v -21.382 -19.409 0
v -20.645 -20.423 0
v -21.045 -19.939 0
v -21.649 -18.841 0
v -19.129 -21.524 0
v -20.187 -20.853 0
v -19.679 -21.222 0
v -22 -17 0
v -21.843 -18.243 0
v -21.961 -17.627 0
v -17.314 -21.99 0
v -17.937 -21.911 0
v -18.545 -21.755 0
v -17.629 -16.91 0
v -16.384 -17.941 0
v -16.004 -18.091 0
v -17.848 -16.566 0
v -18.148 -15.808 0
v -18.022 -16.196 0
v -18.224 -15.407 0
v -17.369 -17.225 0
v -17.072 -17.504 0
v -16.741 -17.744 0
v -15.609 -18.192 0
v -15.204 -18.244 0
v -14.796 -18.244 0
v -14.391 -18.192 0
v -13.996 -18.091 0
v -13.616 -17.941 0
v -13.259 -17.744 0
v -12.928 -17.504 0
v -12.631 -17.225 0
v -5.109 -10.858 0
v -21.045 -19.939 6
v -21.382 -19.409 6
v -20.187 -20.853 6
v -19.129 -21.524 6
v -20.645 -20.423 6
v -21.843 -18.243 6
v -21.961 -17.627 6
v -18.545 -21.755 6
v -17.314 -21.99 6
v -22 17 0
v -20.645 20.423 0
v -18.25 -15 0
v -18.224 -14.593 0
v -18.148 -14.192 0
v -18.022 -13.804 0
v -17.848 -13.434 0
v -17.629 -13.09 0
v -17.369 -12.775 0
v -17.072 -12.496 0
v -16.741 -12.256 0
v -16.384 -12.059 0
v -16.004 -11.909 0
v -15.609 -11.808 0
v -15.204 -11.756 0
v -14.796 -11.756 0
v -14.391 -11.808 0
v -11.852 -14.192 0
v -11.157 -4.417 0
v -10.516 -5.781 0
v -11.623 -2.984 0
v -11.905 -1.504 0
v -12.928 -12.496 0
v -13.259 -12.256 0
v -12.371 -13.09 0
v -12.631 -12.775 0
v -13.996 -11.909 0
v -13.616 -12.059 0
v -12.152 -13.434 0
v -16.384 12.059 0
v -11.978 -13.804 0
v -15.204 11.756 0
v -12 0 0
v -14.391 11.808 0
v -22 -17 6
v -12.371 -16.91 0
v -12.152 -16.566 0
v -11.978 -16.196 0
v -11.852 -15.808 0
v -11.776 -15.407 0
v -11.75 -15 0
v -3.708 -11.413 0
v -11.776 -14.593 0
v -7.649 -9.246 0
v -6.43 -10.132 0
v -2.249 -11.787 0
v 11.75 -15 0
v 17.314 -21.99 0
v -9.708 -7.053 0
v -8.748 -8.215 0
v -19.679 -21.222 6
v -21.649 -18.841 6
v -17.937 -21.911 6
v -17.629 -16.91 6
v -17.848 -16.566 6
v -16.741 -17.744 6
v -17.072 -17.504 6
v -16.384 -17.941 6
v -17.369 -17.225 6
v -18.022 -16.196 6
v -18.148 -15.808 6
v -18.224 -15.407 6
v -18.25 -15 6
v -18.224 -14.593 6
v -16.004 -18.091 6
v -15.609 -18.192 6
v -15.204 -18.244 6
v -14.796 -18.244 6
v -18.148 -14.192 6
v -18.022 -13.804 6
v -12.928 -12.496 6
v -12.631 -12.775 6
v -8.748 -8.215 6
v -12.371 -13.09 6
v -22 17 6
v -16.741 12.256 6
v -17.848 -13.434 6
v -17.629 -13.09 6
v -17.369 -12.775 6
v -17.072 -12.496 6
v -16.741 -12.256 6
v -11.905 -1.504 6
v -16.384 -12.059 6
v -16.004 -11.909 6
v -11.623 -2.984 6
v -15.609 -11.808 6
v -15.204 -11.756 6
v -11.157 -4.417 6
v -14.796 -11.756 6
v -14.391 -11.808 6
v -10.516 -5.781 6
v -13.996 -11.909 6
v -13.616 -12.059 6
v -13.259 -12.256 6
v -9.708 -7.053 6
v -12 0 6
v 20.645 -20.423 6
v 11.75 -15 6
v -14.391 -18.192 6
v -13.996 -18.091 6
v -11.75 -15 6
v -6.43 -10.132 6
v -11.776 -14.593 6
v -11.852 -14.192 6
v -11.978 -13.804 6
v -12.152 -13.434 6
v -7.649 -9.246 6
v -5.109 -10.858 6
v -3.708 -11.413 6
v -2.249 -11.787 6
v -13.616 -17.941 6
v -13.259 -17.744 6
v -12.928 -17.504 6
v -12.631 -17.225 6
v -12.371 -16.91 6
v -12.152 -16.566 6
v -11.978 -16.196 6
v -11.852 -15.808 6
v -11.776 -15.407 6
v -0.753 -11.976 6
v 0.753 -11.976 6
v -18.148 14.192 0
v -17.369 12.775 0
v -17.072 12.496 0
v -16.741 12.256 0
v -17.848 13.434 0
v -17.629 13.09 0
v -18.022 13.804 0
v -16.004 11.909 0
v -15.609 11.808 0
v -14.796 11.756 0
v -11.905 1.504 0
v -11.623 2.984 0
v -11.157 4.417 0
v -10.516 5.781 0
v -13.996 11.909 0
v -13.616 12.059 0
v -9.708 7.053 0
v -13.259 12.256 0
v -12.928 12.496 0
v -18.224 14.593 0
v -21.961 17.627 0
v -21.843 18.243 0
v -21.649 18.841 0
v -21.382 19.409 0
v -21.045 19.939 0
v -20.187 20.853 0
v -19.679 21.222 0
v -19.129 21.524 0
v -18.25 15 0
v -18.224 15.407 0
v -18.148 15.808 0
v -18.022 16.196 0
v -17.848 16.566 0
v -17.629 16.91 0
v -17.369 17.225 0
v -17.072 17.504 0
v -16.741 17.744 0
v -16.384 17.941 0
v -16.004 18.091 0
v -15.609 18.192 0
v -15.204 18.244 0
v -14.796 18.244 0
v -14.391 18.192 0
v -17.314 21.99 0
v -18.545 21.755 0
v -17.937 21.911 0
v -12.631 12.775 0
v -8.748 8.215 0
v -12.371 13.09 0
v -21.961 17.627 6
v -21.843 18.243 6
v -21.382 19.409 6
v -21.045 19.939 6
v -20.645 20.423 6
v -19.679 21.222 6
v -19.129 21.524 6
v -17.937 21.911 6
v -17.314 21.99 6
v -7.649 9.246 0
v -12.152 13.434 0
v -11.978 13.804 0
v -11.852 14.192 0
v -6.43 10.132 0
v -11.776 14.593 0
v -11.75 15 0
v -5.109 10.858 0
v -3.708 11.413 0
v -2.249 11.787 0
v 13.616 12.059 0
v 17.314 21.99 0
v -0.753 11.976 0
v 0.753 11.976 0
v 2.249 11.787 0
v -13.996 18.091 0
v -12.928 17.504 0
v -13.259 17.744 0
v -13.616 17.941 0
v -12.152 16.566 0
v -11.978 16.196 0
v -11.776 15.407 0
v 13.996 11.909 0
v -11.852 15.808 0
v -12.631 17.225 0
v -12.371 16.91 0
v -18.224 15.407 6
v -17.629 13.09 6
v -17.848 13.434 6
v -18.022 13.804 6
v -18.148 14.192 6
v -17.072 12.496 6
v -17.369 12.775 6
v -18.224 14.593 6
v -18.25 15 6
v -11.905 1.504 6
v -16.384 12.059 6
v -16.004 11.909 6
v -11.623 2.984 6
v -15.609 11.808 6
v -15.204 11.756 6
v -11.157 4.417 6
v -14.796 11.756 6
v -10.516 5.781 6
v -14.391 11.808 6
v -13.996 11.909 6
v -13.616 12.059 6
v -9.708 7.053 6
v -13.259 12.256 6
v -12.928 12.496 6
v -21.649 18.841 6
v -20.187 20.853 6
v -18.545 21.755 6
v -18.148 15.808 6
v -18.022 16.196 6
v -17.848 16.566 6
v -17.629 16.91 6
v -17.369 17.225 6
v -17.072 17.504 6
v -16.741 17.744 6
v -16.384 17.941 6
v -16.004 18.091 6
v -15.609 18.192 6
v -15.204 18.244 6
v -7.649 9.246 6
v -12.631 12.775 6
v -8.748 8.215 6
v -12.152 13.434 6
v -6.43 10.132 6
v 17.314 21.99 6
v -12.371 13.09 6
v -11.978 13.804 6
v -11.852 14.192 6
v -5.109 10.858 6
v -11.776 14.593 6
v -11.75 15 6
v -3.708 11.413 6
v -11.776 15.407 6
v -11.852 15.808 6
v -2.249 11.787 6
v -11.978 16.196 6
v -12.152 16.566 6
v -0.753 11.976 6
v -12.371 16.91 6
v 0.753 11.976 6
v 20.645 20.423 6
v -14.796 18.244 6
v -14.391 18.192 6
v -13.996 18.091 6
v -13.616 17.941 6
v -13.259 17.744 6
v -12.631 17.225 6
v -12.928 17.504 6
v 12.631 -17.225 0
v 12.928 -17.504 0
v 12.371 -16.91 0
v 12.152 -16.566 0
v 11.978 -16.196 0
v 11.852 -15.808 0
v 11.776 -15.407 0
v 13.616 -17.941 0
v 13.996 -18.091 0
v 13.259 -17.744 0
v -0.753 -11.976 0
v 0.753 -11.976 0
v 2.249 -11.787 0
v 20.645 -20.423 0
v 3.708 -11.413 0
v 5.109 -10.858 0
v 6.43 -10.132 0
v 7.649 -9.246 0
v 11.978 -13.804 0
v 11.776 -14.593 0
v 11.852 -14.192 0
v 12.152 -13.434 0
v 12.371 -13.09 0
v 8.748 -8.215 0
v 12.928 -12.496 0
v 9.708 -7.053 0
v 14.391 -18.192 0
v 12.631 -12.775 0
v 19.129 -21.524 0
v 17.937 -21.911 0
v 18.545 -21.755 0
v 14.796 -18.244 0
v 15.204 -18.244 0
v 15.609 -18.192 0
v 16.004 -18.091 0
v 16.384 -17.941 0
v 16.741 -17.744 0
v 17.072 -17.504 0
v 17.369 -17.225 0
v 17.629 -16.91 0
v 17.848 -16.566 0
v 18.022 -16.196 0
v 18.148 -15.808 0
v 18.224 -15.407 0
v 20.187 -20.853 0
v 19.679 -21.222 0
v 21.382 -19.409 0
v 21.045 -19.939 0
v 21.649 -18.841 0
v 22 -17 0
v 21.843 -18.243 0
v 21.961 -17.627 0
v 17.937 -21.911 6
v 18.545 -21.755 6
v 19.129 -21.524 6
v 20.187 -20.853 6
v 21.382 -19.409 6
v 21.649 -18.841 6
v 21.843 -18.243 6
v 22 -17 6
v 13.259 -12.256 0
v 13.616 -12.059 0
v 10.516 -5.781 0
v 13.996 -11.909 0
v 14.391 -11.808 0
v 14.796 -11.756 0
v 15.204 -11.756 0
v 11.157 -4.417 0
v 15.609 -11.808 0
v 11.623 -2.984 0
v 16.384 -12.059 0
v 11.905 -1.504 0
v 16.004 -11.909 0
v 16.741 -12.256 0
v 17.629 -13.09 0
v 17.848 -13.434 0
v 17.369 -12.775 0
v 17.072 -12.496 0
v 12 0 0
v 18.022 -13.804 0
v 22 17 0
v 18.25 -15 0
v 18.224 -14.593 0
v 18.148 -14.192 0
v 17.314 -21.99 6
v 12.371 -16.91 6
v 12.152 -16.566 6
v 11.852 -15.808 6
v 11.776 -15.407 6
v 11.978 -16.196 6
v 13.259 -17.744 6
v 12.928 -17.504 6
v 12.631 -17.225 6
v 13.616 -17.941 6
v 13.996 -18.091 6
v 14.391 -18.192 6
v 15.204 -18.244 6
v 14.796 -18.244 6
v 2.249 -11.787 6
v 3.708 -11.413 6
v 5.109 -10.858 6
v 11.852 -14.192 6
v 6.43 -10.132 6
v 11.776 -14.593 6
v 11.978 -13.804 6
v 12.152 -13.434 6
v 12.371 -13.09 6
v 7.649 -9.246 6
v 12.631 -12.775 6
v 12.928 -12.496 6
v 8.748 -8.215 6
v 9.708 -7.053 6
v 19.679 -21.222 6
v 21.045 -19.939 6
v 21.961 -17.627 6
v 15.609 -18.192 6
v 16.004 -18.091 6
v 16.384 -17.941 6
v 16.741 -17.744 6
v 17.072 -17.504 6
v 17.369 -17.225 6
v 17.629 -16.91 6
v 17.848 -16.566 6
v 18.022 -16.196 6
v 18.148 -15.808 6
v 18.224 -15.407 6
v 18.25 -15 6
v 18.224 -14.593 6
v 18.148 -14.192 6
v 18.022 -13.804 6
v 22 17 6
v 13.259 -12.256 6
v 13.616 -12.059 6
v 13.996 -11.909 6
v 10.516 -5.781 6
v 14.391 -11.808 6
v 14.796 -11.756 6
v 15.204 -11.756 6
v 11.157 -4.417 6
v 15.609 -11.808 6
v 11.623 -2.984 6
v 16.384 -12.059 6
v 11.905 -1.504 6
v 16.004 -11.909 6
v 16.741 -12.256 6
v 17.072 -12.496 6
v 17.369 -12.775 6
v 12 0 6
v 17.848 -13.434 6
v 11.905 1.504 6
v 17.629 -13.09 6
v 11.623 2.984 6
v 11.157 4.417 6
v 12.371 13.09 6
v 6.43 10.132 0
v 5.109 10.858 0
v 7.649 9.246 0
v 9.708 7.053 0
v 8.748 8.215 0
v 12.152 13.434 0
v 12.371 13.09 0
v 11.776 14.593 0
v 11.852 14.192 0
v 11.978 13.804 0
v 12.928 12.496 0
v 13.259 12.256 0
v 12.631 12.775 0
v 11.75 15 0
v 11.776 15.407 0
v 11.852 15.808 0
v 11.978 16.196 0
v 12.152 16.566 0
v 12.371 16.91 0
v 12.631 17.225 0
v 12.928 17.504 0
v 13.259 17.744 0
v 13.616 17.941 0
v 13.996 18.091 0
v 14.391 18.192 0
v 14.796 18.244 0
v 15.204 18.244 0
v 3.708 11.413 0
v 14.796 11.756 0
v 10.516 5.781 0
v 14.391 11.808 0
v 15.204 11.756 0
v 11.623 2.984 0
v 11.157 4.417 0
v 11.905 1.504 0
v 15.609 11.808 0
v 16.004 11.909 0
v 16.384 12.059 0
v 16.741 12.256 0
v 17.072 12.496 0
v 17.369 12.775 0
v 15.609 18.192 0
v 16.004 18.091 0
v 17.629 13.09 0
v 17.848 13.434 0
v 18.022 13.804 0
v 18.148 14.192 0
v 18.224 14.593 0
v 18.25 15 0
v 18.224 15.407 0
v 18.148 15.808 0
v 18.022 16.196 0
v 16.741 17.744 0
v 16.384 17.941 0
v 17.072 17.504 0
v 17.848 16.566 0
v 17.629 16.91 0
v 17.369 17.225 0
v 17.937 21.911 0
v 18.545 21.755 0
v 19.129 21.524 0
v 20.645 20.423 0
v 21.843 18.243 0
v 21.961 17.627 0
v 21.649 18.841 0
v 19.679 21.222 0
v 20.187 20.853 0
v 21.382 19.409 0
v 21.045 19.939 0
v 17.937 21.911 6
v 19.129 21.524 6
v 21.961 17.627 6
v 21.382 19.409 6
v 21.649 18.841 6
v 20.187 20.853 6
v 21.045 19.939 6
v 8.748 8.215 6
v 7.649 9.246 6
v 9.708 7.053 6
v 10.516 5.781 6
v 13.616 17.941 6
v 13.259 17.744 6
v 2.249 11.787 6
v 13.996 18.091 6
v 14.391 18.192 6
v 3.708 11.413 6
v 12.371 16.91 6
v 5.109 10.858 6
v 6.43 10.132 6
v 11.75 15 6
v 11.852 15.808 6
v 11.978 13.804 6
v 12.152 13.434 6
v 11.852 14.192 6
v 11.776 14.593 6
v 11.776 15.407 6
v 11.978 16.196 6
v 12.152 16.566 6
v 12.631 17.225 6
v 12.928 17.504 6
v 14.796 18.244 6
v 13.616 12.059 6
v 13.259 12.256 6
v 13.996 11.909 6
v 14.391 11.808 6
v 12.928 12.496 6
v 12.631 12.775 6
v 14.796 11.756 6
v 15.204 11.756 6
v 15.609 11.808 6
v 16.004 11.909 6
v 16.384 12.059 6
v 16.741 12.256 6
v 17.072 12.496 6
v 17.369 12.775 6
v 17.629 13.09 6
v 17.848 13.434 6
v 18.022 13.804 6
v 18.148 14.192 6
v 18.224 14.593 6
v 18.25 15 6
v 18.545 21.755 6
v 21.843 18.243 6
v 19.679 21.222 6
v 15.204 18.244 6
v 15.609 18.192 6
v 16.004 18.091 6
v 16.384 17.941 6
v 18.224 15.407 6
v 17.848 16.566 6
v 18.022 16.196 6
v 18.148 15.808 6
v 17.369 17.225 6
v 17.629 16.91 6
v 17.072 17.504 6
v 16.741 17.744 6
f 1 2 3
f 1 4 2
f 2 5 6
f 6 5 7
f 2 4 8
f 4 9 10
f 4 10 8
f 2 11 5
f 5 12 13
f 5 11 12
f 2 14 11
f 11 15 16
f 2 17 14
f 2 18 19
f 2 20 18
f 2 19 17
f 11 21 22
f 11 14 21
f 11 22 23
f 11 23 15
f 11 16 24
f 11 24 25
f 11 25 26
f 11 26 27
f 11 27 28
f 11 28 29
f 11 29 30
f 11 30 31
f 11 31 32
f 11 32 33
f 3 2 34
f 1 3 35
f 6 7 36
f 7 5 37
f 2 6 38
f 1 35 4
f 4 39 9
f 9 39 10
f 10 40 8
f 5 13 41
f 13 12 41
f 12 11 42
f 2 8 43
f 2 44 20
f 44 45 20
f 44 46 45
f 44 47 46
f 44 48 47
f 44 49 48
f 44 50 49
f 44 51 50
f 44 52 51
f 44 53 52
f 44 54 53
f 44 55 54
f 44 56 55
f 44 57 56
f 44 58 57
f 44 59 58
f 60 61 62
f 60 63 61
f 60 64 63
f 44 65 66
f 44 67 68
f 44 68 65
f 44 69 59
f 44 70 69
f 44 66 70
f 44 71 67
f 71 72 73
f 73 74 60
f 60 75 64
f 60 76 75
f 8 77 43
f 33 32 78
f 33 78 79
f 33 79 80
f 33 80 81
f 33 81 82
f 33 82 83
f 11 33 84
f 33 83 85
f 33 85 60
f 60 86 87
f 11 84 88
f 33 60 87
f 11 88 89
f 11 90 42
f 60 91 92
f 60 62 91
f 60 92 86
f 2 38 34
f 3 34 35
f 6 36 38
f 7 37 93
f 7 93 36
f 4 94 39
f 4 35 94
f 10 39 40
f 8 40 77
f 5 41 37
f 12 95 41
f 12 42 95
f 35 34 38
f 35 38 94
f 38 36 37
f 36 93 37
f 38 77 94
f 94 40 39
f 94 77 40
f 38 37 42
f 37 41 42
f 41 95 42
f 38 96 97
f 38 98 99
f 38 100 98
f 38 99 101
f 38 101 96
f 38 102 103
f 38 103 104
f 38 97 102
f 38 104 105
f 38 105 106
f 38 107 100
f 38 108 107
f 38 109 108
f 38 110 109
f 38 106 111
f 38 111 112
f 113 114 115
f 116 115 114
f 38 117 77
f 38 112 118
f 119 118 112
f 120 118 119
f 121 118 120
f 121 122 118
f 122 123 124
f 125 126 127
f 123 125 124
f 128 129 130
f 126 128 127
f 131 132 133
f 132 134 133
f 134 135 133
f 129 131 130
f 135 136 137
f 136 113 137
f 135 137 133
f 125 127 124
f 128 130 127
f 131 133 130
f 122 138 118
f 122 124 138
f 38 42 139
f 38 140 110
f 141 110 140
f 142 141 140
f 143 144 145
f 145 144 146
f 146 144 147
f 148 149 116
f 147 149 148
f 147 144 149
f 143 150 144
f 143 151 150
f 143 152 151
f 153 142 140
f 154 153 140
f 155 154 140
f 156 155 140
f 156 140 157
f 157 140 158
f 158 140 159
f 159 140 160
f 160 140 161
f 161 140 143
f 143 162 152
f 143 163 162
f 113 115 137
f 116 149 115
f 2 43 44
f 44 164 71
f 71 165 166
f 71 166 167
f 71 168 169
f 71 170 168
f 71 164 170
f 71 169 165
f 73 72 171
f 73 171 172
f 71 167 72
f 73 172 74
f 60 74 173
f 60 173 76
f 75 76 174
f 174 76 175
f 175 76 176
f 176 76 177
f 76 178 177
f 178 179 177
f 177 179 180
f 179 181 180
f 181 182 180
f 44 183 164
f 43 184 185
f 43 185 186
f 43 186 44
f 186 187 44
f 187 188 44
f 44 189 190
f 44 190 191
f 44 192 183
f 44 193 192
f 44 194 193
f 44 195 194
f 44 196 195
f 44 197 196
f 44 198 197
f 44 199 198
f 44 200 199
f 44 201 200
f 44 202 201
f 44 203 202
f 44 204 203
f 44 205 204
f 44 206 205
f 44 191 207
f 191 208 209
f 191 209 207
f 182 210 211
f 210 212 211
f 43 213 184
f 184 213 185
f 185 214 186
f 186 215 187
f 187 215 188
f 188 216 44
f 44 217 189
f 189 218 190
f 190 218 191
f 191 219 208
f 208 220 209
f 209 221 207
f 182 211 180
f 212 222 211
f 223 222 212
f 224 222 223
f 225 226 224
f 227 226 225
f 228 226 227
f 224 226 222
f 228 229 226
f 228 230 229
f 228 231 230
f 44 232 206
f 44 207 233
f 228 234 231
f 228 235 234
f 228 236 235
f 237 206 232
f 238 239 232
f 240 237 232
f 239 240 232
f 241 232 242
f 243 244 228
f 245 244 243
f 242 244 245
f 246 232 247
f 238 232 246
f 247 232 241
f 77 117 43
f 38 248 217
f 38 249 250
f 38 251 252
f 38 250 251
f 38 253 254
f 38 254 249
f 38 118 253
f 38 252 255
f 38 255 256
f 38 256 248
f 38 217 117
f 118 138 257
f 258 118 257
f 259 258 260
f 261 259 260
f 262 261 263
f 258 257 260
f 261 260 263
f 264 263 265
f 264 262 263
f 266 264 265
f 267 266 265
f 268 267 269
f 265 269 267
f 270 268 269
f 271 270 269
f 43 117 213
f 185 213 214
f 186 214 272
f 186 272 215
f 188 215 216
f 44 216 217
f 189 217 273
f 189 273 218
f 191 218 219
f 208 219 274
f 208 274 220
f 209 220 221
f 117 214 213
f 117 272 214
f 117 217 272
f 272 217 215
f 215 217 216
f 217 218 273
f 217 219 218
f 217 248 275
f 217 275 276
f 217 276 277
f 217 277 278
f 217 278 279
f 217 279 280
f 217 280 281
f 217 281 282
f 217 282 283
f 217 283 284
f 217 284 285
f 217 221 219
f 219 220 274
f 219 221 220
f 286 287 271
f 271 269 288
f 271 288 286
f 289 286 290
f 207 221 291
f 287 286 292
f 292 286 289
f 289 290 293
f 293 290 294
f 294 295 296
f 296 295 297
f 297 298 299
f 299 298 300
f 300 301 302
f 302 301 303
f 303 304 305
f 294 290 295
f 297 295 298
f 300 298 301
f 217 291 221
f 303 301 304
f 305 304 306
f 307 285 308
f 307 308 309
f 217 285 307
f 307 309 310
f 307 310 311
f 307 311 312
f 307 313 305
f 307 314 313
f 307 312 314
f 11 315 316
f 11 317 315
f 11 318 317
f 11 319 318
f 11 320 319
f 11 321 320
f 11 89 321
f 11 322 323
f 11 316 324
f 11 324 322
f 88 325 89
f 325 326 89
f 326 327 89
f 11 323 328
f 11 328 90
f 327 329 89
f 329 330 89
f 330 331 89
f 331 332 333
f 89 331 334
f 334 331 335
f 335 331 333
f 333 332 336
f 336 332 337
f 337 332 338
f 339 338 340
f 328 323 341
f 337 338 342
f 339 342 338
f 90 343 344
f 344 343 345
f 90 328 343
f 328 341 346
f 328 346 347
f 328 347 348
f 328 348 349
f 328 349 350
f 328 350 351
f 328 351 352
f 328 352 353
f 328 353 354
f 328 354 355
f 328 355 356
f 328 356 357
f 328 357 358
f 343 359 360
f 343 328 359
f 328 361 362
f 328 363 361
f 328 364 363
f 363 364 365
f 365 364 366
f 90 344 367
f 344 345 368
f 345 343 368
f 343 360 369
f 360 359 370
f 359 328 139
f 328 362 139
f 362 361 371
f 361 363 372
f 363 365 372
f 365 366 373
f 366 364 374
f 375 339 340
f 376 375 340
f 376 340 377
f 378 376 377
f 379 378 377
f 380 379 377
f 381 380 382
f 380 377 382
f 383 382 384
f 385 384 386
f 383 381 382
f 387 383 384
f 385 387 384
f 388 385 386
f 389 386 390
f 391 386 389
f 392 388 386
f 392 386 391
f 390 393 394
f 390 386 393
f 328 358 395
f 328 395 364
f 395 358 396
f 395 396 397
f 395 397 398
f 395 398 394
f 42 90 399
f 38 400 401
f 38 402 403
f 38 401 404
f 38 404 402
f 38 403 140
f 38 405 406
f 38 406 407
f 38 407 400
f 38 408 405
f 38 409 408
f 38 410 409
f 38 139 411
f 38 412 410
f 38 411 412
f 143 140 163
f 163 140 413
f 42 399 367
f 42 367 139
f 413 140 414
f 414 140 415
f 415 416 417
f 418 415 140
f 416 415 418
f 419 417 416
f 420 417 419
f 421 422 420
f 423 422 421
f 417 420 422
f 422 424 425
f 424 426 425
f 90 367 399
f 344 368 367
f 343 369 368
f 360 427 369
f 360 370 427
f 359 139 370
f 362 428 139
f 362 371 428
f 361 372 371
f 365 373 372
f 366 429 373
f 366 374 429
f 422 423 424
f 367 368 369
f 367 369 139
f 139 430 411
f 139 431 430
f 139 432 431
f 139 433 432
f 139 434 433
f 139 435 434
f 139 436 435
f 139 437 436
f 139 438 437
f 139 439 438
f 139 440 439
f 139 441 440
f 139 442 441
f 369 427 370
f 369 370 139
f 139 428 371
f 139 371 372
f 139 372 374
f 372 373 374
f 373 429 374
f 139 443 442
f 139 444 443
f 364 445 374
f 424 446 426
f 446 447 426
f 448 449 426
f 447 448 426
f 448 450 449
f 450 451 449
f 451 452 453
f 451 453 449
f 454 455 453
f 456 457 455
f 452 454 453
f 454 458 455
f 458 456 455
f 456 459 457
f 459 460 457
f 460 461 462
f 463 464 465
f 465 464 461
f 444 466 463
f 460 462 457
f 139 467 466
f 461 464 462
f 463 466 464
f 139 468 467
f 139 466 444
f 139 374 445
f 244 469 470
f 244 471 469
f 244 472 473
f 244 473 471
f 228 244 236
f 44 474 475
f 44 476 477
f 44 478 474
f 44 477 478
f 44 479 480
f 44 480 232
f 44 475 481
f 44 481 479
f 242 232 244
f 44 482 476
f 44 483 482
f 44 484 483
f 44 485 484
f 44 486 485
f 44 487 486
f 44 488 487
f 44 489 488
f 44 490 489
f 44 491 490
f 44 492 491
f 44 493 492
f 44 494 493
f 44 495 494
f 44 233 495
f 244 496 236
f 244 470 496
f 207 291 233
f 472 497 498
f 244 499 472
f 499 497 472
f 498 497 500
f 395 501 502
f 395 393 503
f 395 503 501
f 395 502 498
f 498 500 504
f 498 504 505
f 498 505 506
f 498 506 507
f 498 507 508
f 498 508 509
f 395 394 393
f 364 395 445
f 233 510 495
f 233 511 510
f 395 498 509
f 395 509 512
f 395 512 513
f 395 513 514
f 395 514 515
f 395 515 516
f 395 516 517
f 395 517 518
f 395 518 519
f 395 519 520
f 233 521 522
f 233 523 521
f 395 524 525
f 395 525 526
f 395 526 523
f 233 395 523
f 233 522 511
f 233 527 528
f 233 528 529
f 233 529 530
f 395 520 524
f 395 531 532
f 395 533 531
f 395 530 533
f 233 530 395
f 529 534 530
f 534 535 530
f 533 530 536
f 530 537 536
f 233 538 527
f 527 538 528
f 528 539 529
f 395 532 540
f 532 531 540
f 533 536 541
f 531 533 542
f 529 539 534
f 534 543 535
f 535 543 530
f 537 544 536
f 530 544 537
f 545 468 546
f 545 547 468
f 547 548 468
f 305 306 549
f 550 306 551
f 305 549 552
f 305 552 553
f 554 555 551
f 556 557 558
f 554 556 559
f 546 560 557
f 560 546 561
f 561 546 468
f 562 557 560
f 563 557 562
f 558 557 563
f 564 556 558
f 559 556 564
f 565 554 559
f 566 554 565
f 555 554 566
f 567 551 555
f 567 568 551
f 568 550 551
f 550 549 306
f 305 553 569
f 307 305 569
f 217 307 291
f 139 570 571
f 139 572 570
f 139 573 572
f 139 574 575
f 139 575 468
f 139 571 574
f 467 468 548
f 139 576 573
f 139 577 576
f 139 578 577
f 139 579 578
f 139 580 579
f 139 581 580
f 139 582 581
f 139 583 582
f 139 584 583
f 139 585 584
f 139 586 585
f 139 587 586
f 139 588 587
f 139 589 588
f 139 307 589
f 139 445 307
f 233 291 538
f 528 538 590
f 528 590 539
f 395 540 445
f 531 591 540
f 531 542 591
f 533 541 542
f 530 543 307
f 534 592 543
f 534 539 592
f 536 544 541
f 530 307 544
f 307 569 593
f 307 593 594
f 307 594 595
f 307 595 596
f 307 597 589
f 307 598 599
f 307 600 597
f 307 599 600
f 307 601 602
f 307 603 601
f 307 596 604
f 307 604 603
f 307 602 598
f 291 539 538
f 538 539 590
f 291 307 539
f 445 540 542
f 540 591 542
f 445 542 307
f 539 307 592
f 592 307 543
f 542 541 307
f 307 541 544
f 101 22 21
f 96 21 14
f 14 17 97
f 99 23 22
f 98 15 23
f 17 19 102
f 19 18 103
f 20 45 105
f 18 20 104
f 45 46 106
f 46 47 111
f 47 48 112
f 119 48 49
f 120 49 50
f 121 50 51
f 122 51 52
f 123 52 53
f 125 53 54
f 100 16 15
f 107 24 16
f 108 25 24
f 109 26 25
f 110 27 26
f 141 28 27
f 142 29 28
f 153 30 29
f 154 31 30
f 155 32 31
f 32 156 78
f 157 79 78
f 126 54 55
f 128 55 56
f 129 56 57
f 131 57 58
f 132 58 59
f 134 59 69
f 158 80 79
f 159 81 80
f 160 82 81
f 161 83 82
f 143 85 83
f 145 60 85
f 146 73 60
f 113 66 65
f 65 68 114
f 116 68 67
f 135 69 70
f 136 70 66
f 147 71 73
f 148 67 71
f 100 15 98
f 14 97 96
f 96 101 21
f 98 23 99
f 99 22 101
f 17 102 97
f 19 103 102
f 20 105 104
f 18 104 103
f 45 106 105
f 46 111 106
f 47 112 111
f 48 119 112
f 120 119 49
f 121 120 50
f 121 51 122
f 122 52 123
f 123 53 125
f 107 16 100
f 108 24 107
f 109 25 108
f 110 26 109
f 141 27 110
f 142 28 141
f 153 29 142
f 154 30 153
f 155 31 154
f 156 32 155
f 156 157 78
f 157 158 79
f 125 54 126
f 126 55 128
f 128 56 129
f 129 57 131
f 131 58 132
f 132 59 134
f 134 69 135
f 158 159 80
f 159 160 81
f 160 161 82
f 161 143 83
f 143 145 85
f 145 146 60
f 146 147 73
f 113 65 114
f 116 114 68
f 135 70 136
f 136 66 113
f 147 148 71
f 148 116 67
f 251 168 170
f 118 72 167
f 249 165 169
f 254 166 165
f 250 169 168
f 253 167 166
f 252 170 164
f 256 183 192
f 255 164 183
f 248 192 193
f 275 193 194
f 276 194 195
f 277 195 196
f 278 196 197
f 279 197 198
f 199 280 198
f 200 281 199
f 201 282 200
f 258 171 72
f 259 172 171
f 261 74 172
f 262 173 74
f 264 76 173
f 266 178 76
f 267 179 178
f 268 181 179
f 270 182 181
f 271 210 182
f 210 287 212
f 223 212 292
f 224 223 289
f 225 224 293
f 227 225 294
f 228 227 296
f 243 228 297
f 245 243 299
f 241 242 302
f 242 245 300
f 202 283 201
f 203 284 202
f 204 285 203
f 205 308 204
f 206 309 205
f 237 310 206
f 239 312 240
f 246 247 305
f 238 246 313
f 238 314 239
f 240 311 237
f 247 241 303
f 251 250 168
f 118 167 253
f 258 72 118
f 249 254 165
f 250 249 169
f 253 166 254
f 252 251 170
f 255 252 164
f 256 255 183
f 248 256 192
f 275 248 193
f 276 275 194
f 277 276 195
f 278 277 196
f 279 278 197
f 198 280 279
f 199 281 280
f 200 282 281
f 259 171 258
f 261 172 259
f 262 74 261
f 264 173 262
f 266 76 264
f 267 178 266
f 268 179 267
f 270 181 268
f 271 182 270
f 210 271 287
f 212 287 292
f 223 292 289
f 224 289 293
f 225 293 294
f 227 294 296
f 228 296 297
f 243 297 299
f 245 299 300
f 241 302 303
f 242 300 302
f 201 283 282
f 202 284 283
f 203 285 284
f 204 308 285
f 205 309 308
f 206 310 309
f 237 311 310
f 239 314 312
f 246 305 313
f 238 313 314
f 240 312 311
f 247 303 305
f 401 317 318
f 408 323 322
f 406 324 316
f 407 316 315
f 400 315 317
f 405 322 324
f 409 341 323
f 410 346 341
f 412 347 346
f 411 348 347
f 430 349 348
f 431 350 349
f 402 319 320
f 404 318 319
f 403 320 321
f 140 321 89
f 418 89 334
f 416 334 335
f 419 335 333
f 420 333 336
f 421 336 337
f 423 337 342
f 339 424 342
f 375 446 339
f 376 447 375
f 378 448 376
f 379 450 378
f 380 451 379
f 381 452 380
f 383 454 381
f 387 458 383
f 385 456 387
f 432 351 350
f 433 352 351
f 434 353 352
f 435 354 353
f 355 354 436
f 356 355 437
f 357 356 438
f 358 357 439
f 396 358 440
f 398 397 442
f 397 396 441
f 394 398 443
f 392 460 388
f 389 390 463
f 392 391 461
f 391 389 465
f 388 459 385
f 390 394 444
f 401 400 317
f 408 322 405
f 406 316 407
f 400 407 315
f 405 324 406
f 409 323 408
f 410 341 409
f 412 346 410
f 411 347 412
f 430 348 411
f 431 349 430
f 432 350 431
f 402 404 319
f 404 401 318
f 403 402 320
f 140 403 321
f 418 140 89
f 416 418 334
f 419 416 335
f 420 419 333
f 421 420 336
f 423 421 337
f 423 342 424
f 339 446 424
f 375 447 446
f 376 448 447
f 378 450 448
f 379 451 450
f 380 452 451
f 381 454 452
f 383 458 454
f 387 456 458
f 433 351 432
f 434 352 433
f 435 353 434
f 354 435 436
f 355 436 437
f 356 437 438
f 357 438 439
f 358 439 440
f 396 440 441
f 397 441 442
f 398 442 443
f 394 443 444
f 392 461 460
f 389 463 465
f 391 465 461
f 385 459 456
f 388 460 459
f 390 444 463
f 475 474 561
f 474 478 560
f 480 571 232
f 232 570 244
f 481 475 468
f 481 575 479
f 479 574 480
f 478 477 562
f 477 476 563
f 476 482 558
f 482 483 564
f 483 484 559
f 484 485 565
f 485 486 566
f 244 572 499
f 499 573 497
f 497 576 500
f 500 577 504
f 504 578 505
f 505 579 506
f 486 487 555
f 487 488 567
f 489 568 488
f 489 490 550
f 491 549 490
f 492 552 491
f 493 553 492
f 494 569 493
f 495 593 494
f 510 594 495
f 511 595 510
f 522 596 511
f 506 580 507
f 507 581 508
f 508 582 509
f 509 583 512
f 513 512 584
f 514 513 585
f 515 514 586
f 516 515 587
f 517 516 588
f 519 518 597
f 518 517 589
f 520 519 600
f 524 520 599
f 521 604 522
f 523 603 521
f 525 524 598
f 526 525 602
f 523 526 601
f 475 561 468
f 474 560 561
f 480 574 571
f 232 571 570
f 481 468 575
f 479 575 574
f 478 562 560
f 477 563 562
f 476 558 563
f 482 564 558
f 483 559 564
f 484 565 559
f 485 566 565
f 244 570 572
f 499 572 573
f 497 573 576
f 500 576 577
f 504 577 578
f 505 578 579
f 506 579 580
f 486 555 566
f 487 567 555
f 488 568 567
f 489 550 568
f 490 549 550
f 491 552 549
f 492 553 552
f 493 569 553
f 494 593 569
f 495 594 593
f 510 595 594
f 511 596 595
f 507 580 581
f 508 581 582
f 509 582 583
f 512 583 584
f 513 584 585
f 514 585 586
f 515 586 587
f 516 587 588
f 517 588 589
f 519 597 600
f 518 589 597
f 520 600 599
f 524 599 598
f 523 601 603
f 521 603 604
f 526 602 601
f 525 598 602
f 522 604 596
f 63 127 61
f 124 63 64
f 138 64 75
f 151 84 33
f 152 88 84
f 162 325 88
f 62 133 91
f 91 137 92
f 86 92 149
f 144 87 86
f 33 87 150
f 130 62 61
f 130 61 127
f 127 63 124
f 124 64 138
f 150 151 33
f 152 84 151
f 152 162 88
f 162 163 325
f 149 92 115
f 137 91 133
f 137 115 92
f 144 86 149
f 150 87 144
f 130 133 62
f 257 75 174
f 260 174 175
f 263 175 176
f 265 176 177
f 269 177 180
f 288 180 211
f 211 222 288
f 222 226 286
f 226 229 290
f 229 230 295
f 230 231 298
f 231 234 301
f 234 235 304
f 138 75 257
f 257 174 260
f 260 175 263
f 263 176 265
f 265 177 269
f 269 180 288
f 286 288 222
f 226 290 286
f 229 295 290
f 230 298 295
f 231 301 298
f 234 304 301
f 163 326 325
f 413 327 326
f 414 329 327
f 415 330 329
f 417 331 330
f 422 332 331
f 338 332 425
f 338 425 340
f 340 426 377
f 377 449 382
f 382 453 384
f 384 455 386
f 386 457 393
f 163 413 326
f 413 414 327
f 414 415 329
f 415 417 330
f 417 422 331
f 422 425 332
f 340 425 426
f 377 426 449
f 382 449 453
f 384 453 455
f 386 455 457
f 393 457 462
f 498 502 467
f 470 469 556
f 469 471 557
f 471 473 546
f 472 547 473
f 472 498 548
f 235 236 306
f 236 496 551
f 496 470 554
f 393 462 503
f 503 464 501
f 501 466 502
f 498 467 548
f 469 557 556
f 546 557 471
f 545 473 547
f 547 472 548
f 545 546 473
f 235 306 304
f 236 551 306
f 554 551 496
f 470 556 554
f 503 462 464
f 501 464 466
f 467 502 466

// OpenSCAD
$fn = 50;

difference() {
	union() {
		hull() {
			translate(v = [-17.0, 17.0, 0]) {
				cylinder(h = 6, r = 5);
			}
			translate(v = [17.0, 17.0, 0]) {
				cylinder(h = 6, r = 5);
			}
			translate(v = [-17.0, -17.0, 0]) {
				cylinder(h = 6, r = 5);
			}
			translate(v = [17.0, -17.0, 0]) {
				cylinder(h = 6, r = 5);
			}
		}
	}
	union() {
		translate(v = [-15.0, -15.0, -100.0]) {
			cylinder(h = 200, r = 3.25);
		}
		translate(v = [-15.0, 15.0, -100.0]) {
			cylinder(h = 200, r = 3.25);
		}
		translate(v = [15.0, -15.0, -100.0]) {
			cylinder(h = 200, r = 3.25);
		}
		translate(v = [15.0, 15.0, -100.0]) {
			cylinder(h = 200, r = 3.25);
		}
		translate(v = [-15.0, -15.0, -100.0]) {
			cylinder(h = 200, r = 1.8);
		}
		translate(v = [-15.0, 15.0, -100.0]) {
			cylinder(h = 200, r = 1.8);
		}
		translate(v = [15.0, -15.0, -100.0]) {
			cylinder(h = 200, r = 1.8);
		}
		translate(v = [15.0, 15.0, -100.0]) {
			cylinder(h = 200, r = 1.8);
		}
		cylinder(h = 6, r = 12.0);
	}
}
